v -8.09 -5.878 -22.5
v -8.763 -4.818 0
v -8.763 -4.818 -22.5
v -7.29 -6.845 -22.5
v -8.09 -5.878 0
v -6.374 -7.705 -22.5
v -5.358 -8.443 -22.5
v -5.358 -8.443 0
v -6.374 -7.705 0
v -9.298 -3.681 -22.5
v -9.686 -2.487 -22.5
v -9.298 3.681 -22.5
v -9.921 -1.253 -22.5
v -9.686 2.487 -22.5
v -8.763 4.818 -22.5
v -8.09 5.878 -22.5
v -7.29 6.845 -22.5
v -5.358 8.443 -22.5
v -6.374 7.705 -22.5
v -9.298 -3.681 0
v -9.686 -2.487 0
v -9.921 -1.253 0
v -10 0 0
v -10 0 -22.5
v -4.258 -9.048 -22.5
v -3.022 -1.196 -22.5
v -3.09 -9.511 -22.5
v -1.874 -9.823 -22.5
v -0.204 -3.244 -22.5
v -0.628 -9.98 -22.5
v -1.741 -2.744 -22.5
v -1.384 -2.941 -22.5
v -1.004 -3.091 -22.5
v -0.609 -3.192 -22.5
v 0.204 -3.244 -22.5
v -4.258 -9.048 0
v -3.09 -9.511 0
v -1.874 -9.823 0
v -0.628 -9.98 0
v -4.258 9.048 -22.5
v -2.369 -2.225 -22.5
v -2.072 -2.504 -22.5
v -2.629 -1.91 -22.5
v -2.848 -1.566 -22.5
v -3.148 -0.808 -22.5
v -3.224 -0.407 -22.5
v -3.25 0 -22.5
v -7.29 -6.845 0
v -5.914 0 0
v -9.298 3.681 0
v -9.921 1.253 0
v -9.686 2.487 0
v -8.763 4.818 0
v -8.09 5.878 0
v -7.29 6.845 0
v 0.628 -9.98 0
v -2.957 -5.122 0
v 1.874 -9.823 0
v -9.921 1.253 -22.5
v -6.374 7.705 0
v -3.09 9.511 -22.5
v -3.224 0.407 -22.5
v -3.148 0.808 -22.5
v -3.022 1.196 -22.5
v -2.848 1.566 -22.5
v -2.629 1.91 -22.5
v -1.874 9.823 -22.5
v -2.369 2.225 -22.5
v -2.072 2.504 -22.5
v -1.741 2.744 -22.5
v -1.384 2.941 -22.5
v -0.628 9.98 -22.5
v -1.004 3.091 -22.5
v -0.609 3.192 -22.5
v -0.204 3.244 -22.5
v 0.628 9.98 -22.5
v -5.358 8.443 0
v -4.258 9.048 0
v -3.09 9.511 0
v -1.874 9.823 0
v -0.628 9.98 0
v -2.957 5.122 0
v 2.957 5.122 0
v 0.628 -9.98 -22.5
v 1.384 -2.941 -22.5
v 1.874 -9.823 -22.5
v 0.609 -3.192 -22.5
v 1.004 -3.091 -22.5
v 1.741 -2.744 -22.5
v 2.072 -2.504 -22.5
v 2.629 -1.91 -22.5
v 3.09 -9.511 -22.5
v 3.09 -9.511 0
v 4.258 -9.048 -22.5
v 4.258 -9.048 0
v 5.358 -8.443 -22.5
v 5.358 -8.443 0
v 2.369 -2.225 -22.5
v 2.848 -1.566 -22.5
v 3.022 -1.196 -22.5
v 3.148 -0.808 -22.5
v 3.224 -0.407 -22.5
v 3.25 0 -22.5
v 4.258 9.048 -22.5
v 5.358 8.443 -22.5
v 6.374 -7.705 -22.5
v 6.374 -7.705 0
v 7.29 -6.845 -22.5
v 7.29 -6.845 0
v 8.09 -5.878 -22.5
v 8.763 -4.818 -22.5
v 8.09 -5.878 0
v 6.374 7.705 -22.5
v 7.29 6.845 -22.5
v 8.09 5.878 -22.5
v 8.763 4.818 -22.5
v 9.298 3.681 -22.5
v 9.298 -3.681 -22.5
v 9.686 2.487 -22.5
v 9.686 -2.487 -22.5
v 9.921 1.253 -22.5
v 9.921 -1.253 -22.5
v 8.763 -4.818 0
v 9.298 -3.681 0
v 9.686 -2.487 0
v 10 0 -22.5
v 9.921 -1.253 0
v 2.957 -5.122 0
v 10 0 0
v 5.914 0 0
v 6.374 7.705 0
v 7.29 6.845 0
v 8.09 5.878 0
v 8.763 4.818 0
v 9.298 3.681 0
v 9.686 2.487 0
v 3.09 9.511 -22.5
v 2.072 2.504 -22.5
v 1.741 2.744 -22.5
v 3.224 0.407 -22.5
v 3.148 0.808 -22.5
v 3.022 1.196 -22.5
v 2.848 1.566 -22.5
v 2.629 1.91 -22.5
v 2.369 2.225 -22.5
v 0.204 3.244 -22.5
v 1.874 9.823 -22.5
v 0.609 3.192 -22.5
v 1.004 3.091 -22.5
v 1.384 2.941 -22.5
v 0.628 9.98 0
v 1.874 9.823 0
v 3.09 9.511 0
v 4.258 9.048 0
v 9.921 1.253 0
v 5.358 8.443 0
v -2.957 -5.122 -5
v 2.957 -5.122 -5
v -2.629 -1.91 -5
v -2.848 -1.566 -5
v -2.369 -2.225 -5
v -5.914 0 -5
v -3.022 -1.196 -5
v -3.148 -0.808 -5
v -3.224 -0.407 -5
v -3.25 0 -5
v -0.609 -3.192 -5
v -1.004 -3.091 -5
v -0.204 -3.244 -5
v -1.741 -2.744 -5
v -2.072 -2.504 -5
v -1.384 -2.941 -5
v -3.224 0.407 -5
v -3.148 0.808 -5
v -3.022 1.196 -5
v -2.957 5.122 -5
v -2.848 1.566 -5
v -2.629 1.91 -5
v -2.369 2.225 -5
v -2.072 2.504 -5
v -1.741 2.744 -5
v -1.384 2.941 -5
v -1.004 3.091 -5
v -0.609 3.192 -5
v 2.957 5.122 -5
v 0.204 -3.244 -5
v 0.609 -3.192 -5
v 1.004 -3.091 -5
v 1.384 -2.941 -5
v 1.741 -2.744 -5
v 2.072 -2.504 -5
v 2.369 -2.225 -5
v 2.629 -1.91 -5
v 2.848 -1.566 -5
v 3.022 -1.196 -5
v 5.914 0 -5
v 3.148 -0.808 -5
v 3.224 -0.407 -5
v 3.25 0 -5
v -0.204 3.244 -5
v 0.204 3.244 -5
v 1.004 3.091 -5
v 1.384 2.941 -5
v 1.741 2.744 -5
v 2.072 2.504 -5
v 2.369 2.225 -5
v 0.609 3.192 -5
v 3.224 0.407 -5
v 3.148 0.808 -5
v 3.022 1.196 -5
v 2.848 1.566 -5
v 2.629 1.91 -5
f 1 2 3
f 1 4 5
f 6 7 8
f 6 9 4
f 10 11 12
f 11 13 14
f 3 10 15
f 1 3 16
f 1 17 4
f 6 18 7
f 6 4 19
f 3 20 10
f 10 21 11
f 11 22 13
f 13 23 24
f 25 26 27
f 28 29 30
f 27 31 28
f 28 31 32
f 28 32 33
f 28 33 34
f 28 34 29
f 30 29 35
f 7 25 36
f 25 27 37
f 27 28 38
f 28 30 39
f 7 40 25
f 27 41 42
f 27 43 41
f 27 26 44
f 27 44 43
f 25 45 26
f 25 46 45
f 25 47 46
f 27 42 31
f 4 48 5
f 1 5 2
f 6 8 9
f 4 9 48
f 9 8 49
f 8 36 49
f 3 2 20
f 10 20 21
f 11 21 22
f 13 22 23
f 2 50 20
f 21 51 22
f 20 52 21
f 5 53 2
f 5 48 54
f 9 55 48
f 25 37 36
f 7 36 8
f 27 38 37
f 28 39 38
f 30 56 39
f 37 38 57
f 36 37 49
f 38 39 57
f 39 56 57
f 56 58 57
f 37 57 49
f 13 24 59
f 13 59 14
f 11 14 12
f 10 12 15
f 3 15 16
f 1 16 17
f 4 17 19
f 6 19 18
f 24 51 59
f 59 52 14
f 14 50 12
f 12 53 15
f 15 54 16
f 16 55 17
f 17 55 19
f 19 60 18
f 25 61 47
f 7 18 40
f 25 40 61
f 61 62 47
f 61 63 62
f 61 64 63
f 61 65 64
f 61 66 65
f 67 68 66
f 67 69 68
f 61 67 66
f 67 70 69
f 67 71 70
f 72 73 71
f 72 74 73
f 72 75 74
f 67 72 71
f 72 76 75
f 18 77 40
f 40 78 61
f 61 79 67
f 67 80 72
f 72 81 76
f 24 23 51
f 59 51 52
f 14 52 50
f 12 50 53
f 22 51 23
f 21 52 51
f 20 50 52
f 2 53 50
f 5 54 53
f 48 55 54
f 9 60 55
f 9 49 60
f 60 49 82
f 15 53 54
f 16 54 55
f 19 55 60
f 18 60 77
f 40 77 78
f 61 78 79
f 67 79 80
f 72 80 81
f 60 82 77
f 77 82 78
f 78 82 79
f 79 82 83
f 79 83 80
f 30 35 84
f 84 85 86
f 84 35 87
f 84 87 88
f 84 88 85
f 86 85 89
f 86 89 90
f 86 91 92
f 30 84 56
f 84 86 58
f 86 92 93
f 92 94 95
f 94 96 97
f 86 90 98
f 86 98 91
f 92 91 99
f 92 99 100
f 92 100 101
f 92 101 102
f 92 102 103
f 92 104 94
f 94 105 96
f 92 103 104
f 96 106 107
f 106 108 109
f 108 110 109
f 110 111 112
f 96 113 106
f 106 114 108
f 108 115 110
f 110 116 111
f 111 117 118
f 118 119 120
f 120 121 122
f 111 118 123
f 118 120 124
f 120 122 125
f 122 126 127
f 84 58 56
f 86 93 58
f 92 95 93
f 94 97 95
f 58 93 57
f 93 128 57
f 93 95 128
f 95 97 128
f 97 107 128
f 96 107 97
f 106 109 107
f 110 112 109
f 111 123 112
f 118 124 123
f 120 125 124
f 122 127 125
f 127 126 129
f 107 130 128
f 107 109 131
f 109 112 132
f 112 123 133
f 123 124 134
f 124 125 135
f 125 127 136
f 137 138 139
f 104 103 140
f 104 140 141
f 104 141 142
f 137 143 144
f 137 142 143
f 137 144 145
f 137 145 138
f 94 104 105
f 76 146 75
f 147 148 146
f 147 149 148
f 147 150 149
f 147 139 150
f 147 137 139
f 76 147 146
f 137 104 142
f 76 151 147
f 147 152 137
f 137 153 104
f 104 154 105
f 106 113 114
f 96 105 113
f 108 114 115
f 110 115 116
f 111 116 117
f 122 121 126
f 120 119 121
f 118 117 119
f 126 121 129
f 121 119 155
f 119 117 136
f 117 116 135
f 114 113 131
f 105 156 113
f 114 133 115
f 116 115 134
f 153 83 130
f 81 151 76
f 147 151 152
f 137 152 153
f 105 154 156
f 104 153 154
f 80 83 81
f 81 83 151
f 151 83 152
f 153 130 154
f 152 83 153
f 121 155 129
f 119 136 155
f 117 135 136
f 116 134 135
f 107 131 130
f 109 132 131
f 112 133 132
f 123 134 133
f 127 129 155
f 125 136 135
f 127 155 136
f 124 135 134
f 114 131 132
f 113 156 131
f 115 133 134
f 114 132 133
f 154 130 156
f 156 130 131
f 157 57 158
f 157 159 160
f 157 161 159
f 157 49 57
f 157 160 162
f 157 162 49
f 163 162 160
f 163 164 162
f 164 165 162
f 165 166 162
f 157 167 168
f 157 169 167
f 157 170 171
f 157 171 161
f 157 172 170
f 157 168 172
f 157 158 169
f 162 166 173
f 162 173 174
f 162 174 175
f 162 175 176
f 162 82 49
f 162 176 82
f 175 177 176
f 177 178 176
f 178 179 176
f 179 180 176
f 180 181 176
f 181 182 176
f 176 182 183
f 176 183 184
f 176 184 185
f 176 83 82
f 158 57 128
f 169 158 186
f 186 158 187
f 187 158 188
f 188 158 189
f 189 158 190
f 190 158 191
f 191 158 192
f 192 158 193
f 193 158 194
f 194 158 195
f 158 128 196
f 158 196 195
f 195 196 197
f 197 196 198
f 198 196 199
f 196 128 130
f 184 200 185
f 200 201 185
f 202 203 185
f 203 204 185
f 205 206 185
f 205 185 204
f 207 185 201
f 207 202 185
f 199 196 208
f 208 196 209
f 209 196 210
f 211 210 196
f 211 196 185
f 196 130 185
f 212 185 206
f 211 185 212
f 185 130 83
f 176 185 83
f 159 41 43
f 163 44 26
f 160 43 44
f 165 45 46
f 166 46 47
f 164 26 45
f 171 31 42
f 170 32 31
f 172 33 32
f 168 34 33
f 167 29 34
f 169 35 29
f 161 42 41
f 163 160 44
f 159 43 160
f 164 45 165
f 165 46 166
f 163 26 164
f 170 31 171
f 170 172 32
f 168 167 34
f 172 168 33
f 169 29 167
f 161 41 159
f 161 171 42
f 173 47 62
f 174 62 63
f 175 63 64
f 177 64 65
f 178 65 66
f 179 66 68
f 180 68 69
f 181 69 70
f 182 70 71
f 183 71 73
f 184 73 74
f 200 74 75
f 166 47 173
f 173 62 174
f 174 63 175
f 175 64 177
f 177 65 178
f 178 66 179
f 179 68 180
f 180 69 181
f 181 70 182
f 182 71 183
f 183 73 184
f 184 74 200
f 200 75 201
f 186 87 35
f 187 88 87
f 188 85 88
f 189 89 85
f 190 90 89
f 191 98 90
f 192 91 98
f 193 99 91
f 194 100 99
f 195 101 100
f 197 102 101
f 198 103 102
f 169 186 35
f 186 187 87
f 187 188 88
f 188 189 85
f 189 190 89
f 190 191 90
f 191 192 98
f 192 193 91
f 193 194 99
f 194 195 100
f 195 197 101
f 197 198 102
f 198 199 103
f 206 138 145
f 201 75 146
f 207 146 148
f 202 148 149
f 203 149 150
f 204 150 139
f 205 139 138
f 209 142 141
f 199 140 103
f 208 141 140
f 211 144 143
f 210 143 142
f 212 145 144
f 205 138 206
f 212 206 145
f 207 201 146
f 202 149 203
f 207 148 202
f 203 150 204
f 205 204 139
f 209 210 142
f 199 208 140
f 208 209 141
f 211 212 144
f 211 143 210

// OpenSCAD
$fn = 50;

difference() {
	union() {
		translate(v = [0, 0, -22.5]) {
			cylinder(h = 22.5, r = 10.0);
		}
		#translate(v = [0, 0, -24.0]) {
			cylinder(h = 24, r = 2.875);
		}
	}
	union() {
		translate(v = [0, 0, 0]) {
			rotate(a = [0, 0, 0]) {
				difference() {
					union() {
						translate(v = [0, 0, -5]) {
							linear_extrude(height = 5) {
								polygon(points = [[5.914249999999999, 0.0], [2.957125, 5.1218907443321156], [-2.9571249999999982, 5.1218907443321156], [-5.914249999999999, 7.242867331857232e-16], [-2.9571250000000022, -5.121890744332115], [2.9571249999999956, -5.121890744332118]]);
							}
						}
					}
					union();
				}
			}
		}
		#translate(v = [0, 0, -100.0]) {
			cylinder(h = 200, r = 3.25);
		}
	}
}
